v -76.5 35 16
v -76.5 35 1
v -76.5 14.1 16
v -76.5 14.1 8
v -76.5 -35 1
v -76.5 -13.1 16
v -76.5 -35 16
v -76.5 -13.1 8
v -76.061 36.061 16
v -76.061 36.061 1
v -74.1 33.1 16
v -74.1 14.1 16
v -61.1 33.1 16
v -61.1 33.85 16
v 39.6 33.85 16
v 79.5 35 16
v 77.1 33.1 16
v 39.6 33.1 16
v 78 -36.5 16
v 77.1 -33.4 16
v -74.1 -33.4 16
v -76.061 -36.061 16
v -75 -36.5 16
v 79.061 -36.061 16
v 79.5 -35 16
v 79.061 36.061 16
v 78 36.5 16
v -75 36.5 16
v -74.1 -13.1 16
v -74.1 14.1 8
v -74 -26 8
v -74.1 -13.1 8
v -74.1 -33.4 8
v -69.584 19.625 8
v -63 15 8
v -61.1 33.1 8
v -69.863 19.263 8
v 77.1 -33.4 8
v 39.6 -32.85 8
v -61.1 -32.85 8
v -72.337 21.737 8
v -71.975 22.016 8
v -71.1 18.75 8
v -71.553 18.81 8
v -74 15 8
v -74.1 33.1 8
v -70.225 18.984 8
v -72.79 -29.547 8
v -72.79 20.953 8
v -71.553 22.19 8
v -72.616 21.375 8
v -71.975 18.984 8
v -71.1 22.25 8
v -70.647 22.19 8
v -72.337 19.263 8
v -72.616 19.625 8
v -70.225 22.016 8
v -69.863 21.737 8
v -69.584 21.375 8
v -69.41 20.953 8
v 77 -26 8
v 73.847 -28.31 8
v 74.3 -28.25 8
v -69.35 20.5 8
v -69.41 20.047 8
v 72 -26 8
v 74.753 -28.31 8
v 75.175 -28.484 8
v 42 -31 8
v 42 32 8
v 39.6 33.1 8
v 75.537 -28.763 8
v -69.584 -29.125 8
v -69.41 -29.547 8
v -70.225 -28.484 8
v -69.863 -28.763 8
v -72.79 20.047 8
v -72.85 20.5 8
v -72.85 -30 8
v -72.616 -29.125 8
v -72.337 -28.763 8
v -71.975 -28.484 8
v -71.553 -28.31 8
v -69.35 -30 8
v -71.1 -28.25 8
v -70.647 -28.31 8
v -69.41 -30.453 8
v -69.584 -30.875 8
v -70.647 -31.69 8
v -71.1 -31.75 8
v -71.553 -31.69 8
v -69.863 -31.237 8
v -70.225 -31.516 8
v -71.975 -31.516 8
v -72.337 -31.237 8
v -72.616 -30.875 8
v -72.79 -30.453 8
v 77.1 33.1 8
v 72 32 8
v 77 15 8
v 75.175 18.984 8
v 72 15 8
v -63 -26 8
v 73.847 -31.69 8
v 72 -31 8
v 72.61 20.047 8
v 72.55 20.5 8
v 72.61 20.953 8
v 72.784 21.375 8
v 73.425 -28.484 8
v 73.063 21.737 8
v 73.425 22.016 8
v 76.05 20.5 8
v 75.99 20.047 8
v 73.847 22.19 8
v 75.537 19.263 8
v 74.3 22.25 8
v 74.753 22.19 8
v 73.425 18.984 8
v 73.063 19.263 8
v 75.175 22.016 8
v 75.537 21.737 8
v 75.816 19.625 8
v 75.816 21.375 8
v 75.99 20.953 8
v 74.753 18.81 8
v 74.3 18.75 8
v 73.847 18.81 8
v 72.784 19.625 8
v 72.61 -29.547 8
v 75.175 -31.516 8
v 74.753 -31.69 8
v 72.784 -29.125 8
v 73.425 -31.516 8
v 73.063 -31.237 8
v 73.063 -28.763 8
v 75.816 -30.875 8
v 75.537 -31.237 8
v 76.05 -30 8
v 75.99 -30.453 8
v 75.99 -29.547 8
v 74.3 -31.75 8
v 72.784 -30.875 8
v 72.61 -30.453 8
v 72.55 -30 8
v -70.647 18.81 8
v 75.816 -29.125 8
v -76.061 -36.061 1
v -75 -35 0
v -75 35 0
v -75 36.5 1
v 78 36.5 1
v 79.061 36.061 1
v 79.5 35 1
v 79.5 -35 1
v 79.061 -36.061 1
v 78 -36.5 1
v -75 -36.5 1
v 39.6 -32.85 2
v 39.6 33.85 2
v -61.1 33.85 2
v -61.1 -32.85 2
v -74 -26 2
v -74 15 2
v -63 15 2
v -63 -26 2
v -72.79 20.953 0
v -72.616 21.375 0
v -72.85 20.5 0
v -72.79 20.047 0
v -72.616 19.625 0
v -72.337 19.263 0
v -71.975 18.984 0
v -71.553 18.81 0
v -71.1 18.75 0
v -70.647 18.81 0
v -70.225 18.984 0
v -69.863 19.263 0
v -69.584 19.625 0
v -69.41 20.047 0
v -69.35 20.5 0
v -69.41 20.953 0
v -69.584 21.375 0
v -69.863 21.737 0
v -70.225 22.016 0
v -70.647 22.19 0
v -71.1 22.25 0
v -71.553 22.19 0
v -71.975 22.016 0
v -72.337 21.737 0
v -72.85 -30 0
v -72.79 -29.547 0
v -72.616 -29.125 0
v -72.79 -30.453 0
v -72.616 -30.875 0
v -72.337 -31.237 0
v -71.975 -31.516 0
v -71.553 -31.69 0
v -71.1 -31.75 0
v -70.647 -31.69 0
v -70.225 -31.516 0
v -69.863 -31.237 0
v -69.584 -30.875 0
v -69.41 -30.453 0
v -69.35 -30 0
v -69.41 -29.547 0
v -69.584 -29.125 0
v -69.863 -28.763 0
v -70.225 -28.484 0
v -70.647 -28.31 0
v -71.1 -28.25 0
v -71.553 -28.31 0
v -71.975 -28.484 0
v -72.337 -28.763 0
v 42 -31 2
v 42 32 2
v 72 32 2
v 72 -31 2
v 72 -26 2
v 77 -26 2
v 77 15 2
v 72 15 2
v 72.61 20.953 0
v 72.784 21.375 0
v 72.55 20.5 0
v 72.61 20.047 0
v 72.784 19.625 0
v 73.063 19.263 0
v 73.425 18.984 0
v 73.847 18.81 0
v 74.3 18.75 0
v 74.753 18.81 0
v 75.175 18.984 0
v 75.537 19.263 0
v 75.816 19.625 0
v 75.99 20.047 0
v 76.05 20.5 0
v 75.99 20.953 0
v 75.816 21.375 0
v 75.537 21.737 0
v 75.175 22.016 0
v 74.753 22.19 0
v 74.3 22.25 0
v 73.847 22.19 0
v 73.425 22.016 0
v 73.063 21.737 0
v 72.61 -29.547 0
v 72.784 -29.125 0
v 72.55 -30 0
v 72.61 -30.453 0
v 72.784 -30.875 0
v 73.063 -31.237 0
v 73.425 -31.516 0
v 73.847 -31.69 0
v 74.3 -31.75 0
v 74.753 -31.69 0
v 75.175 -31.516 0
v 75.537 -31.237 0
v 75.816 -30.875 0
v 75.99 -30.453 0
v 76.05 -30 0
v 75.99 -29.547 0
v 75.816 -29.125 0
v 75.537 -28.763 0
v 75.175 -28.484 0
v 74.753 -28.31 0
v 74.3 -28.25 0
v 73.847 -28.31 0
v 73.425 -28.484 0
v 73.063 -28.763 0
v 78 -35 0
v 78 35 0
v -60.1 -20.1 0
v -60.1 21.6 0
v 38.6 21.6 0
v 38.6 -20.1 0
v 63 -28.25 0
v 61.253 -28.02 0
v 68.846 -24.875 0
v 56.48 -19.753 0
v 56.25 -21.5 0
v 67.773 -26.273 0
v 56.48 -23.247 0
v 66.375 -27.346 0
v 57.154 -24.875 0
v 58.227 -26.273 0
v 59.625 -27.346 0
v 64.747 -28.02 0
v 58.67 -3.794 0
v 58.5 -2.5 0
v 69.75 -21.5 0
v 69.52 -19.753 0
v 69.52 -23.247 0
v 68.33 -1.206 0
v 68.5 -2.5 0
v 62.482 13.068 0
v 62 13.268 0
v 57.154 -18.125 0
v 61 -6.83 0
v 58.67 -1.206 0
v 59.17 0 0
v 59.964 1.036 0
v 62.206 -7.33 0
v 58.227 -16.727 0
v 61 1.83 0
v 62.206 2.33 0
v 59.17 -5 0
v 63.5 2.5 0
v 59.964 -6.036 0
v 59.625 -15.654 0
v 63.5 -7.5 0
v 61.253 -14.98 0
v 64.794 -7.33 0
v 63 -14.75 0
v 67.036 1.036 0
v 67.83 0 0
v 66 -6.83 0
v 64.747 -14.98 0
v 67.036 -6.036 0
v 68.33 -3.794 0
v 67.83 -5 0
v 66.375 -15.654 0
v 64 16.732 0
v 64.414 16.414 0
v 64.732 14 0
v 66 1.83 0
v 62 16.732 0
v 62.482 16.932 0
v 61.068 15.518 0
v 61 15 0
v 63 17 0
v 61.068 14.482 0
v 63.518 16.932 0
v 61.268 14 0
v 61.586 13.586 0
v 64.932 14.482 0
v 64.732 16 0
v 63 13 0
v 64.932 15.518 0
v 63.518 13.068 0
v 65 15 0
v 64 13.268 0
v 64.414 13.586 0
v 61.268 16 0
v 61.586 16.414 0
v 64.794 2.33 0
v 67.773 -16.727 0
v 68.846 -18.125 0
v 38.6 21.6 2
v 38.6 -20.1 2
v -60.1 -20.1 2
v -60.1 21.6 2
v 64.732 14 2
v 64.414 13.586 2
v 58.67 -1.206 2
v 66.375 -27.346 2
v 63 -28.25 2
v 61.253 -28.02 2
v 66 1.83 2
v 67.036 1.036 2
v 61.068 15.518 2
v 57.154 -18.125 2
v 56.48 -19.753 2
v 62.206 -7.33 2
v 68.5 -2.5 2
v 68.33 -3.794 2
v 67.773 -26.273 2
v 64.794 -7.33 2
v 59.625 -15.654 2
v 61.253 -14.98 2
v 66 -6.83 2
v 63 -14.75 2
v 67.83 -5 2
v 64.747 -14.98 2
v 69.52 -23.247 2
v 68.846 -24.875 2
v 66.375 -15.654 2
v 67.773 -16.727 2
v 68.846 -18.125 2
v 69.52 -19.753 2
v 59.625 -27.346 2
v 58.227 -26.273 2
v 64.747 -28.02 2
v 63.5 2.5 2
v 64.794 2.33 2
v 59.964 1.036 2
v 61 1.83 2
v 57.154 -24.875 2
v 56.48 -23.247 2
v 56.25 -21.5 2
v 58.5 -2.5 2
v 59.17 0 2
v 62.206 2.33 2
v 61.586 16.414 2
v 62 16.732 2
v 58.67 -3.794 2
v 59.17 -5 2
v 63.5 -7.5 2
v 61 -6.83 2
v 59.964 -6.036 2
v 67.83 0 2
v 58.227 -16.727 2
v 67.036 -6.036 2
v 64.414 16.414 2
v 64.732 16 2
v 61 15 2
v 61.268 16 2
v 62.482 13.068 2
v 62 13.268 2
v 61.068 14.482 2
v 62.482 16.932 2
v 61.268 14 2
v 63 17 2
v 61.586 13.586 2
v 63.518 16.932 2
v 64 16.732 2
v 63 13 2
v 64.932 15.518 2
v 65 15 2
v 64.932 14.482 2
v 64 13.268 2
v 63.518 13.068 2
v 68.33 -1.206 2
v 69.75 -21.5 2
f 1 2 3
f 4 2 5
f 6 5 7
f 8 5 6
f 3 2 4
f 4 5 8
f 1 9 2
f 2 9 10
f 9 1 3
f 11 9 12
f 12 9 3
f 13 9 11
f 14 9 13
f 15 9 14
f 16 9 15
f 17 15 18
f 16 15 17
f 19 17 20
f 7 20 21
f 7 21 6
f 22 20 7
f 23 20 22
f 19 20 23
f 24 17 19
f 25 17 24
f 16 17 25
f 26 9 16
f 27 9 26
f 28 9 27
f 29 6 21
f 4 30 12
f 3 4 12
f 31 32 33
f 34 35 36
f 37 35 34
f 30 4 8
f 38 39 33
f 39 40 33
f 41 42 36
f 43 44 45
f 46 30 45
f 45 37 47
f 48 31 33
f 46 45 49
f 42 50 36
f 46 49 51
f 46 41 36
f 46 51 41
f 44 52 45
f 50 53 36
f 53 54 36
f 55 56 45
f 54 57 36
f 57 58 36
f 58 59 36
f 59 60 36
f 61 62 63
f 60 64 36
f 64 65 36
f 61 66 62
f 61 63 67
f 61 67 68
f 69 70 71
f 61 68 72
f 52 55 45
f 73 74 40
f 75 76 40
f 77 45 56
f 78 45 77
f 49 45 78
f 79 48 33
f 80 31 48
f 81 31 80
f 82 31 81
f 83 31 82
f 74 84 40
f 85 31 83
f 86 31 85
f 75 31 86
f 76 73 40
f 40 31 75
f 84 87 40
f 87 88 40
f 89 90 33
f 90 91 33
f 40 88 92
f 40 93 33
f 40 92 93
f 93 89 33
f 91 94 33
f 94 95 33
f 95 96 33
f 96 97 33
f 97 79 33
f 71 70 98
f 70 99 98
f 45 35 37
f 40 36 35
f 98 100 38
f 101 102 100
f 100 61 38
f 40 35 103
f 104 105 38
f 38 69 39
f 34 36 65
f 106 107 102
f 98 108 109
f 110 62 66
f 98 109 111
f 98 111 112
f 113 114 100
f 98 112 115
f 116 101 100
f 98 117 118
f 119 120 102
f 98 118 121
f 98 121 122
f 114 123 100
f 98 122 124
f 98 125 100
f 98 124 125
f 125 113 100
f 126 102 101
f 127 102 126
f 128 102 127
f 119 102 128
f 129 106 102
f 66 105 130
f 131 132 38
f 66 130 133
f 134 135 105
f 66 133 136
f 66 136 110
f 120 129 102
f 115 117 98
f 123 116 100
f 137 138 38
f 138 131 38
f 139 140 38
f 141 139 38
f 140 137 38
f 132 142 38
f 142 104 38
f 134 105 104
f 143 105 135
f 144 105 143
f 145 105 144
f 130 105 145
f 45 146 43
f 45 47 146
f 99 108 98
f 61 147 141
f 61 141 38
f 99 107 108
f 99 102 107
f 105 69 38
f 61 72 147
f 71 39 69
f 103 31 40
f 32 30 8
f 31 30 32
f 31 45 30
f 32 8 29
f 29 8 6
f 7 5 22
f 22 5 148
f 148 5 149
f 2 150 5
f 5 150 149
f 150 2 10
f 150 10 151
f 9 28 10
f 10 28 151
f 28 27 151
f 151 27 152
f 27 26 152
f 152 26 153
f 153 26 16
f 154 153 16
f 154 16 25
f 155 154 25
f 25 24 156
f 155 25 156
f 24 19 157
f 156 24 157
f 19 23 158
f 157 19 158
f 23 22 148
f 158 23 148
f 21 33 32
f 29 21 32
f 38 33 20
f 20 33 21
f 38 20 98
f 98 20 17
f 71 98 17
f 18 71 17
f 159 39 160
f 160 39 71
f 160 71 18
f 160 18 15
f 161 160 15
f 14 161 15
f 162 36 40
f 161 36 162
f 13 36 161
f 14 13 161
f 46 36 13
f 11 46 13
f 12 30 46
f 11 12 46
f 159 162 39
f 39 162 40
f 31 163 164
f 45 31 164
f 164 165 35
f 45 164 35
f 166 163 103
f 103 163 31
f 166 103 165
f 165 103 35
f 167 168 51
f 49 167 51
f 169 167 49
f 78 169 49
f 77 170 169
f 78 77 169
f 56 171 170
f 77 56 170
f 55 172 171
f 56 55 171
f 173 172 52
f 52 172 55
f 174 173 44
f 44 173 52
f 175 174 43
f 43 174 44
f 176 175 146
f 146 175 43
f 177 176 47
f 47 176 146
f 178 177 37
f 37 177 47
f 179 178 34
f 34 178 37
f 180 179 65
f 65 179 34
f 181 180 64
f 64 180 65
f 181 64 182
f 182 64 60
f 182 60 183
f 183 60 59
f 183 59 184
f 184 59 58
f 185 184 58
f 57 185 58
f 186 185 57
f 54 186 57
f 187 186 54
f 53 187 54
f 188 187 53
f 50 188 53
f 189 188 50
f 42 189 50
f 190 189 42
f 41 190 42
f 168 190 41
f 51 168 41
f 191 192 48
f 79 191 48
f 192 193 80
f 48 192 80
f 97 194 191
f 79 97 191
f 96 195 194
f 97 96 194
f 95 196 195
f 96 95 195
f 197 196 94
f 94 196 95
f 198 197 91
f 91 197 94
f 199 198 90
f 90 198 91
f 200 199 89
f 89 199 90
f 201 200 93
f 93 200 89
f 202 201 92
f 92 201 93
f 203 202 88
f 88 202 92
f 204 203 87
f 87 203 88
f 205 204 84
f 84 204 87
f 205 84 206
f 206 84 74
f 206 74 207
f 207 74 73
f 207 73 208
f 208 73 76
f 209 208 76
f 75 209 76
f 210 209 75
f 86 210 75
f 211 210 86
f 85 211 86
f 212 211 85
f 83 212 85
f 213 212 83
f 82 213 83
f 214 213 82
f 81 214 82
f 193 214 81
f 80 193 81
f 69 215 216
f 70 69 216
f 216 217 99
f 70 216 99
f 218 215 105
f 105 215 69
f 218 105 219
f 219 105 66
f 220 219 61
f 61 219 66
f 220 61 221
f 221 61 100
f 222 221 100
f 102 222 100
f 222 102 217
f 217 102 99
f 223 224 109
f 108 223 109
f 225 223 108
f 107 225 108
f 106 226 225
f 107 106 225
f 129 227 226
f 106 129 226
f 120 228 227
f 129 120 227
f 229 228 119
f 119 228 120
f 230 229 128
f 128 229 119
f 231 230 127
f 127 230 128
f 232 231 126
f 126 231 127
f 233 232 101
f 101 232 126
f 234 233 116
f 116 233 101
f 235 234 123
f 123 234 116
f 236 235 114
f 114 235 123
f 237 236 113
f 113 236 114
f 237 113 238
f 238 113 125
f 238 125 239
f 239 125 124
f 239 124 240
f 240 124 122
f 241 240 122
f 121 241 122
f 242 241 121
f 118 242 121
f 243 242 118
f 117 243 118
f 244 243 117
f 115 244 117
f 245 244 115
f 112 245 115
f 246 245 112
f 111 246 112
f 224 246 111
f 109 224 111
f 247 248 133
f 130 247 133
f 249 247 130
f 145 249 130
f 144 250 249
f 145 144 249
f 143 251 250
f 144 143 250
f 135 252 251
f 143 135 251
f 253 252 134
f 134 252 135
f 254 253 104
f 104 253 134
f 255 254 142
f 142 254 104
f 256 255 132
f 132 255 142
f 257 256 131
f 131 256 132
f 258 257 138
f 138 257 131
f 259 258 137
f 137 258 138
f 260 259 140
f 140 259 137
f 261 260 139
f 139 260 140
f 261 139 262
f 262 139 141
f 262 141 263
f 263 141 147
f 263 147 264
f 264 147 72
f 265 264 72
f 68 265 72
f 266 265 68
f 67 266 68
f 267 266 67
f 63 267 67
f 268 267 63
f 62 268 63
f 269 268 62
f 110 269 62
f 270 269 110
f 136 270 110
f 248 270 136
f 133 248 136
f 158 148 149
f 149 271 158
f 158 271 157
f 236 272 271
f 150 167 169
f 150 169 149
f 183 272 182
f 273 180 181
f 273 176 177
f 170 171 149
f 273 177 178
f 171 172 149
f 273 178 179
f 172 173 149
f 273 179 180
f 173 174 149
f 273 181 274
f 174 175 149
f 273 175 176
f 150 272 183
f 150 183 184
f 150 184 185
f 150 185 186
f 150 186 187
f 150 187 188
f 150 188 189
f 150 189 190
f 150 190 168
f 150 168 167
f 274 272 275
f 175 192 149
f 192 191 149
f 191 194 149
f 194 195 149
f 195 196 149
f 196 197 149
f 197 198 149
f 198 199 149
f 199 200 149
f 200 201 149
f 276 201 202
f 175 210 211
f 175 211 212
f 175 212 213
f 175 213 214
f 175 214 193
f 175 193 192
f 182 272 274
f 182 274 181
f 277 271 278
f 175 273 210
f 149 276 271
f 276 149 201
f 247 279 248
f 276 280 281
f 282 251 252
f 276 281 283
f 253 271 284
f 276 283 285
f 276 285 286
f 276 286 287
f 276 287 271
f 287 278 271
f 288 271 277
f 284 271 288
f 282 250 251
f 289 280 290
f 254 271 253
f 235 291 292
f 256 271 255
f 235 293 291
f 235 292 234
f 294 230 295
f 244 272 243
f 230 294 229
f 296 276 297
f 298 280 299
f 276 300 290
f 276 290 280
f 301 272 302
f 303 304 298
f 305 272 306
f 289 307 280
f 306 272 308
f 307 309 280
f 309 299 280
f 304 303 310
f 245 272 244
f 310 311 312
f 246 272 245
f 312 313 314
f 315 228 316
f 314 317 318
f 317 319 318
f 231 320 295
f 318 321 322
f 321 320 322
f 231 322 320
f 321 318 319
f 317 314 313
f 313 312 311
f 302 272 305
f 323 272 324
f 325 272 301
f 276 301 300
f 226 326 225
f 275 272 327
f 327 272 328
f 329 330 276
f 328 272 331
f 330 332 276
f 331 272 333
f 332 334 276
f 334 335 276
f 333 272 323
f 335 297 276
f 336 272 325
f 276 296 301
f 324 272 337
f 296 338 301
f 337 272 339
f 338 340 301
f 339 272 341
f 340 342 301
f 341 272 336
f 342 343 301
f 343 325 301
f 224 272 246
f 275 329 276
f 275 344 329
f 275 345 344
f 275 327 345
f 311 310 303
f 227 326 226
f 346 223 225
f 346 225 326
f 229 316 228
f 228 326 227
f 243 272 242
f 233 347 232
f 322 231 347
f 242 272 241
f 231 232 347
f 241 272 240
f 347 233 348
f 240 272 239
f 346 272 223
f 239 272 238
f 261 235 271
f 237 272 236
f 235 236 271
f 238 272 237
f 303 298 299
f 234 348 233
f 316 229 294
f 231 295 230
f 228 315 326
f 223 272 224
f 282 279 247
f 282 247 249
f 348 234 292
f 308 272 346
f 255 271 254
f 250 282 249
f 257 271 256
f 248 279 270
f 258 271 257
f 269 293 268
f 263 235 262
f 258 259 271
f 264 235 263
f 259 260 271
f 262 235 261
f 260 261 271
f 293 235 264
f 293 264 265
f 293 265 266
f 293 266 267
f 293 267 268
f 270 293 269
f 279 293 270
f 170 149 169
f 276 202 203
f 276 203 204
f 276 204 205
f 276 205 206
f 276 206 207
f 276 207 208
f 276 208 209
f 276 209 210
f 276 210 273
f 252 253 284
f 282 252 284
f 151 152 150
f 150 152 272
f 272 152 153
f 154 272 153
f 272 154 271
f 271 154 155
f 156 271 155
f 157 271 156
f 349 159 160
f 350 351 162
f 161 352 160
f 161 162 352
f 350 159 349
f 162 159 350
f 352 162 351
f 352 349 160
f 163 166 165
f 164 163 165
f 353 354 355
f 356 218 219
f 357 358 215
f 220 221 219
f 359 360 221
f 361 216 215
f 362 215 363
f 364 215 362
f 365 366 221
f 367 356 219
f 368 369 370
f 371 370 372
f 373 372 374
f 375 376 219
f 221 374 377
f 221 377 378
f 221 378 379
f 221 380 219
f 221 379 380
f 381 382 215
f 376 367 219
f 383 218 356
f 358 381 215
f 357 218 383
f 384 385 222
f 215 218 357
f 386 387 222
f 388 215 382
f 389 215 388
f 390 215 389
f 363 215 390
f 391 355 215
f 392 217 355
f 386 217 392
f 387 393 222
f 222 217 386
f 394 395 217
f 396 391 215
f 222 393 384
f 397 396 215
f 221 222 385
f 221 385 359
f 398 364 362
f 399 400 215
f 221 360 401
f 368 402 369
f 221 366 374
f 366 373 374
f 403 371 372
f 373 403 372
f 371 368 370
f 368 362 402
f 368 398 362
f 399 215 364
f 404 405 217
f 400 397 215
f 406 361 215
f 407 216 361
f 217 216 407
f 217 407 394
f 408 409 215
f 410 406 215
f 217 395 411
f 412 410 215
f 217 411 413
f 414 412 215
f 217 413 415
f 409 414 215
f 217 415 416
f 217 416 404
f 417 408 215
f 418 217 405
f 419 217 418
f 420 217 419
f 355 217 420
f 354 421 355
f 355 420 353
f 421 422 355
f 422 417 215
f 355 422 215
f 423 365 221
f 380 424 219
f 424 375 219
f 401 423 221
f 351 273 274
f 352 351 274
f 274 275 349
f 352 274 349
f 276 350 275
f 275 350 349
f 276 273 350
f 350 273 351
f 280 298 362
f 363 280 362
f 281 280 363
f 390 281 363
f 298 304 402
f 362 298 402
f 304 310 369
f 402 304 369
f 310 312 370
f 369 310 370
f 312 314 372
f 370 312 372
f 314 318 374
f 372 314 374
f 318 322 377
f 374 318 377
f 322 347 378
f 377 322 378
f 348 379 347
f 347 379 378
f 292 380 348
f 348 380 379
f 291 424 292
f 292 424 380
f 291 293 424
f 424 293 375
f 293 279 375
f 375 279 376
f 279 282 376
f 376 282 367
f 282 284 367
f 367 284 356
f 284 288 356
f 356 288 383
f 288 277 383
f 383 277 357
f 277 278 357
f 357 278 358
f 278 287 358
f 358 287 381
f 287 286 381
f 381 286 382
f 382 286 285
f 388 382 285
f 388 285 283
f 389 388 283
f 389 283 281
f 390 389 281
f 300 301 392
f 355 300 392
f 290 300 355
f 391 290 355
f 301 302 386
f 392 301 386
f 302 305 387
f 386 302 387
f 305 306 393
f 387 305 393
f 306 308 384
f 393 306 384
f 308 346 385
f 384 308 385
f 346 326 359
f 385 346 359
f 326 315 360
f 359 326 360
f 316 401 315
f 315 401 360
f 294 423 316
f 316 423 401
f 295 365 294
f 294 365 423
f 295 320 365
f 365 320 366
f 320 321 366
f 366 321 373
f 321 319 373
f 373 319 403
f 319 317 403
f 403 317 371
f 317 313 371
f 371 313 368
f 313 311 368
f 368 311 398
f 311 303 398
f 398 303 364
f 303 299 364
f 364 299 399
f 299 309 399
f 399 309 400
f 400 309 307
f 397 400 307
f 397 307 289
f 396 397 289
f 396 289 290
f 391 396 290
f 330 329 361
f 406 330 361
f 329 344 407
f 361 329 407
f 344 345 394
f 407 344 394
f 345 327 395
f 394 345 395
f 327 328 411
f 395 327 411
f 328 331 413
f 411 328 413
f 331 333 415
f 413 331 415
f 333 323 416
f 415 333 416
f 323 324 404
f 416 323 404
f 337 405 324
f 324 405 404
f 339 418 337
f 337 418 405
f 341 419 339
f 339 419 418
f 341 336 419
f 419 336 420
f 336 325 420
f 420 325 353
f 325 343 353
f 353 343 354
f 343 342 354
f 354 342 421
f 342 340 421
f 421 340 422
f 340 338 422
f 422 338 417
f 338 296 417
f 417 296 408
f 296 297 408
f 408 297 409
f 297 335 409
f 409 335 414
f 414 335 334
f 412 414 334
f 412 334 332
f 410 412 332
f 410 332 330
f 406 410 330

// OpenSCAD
// LCD 2004
$fn=24;

module lcd2004()
{
	difference()
	{
		// Solids
		hull()
		{
			cube( [153, 70, 16] );
			translate([153,70,0]) cylinder(r=1.5,h=15,$fn=8);
			translate([153,0,0]) cylinder(r=1.5,h=15,$fn=8);
			translate([0,0,0]) cylinder(r=1.5,h=15,$fn=8);
			translate([0,70,0]) cylinder(r=1.5,h=15,$fn=8);
		}
		
		// Holes

		// LCD display
		translate([14.9,13.4, 0]) cube([98.7,41.7,17]);
		// LCD pcb
		translate([13.9,1.15,0]) cube([100.7,66.7,14]);
		// Master pcb 
		translate([0.9,1.9,0]) cube([151.2,66.5,8]);
		// SD Slot
		translate([-1.5,20.9,0]) cube([2.5,27.2,8]);
	
		// Mounting screw holes
		translate([149.3,65,0]) cylinder(r=1.75,h=17);
		translate([3.9,14.5,0]) cylinder(r=1.75,h=17);
		translate([149.3,14.5,0]) cylinder(r=1.75,h=17);
		translate([3.9,65,0]) cylinder(r=1.75,h=17);
	
		// Rotary encoder
		translate([138.5,37.5,0]) cylinder(r=5,h=17);
		// Beeper
		translate([138,56.5,0]) cylinder(r=6.75,h=178);
		// Reset
		translate([138,20,0]) cylinder(r=2,h=17);
	
		// Material Savings
		translate([117,3,0]) cube([30,63,14]);
		translate([119,20,0]) cube([33,41,14]);
		translate([1,20,0]) cube([11,41,14]);
	}
}

// Center and Flip
rotate([180,0,0]) translate([-75,-35,-16]) 
	lcd2004();
